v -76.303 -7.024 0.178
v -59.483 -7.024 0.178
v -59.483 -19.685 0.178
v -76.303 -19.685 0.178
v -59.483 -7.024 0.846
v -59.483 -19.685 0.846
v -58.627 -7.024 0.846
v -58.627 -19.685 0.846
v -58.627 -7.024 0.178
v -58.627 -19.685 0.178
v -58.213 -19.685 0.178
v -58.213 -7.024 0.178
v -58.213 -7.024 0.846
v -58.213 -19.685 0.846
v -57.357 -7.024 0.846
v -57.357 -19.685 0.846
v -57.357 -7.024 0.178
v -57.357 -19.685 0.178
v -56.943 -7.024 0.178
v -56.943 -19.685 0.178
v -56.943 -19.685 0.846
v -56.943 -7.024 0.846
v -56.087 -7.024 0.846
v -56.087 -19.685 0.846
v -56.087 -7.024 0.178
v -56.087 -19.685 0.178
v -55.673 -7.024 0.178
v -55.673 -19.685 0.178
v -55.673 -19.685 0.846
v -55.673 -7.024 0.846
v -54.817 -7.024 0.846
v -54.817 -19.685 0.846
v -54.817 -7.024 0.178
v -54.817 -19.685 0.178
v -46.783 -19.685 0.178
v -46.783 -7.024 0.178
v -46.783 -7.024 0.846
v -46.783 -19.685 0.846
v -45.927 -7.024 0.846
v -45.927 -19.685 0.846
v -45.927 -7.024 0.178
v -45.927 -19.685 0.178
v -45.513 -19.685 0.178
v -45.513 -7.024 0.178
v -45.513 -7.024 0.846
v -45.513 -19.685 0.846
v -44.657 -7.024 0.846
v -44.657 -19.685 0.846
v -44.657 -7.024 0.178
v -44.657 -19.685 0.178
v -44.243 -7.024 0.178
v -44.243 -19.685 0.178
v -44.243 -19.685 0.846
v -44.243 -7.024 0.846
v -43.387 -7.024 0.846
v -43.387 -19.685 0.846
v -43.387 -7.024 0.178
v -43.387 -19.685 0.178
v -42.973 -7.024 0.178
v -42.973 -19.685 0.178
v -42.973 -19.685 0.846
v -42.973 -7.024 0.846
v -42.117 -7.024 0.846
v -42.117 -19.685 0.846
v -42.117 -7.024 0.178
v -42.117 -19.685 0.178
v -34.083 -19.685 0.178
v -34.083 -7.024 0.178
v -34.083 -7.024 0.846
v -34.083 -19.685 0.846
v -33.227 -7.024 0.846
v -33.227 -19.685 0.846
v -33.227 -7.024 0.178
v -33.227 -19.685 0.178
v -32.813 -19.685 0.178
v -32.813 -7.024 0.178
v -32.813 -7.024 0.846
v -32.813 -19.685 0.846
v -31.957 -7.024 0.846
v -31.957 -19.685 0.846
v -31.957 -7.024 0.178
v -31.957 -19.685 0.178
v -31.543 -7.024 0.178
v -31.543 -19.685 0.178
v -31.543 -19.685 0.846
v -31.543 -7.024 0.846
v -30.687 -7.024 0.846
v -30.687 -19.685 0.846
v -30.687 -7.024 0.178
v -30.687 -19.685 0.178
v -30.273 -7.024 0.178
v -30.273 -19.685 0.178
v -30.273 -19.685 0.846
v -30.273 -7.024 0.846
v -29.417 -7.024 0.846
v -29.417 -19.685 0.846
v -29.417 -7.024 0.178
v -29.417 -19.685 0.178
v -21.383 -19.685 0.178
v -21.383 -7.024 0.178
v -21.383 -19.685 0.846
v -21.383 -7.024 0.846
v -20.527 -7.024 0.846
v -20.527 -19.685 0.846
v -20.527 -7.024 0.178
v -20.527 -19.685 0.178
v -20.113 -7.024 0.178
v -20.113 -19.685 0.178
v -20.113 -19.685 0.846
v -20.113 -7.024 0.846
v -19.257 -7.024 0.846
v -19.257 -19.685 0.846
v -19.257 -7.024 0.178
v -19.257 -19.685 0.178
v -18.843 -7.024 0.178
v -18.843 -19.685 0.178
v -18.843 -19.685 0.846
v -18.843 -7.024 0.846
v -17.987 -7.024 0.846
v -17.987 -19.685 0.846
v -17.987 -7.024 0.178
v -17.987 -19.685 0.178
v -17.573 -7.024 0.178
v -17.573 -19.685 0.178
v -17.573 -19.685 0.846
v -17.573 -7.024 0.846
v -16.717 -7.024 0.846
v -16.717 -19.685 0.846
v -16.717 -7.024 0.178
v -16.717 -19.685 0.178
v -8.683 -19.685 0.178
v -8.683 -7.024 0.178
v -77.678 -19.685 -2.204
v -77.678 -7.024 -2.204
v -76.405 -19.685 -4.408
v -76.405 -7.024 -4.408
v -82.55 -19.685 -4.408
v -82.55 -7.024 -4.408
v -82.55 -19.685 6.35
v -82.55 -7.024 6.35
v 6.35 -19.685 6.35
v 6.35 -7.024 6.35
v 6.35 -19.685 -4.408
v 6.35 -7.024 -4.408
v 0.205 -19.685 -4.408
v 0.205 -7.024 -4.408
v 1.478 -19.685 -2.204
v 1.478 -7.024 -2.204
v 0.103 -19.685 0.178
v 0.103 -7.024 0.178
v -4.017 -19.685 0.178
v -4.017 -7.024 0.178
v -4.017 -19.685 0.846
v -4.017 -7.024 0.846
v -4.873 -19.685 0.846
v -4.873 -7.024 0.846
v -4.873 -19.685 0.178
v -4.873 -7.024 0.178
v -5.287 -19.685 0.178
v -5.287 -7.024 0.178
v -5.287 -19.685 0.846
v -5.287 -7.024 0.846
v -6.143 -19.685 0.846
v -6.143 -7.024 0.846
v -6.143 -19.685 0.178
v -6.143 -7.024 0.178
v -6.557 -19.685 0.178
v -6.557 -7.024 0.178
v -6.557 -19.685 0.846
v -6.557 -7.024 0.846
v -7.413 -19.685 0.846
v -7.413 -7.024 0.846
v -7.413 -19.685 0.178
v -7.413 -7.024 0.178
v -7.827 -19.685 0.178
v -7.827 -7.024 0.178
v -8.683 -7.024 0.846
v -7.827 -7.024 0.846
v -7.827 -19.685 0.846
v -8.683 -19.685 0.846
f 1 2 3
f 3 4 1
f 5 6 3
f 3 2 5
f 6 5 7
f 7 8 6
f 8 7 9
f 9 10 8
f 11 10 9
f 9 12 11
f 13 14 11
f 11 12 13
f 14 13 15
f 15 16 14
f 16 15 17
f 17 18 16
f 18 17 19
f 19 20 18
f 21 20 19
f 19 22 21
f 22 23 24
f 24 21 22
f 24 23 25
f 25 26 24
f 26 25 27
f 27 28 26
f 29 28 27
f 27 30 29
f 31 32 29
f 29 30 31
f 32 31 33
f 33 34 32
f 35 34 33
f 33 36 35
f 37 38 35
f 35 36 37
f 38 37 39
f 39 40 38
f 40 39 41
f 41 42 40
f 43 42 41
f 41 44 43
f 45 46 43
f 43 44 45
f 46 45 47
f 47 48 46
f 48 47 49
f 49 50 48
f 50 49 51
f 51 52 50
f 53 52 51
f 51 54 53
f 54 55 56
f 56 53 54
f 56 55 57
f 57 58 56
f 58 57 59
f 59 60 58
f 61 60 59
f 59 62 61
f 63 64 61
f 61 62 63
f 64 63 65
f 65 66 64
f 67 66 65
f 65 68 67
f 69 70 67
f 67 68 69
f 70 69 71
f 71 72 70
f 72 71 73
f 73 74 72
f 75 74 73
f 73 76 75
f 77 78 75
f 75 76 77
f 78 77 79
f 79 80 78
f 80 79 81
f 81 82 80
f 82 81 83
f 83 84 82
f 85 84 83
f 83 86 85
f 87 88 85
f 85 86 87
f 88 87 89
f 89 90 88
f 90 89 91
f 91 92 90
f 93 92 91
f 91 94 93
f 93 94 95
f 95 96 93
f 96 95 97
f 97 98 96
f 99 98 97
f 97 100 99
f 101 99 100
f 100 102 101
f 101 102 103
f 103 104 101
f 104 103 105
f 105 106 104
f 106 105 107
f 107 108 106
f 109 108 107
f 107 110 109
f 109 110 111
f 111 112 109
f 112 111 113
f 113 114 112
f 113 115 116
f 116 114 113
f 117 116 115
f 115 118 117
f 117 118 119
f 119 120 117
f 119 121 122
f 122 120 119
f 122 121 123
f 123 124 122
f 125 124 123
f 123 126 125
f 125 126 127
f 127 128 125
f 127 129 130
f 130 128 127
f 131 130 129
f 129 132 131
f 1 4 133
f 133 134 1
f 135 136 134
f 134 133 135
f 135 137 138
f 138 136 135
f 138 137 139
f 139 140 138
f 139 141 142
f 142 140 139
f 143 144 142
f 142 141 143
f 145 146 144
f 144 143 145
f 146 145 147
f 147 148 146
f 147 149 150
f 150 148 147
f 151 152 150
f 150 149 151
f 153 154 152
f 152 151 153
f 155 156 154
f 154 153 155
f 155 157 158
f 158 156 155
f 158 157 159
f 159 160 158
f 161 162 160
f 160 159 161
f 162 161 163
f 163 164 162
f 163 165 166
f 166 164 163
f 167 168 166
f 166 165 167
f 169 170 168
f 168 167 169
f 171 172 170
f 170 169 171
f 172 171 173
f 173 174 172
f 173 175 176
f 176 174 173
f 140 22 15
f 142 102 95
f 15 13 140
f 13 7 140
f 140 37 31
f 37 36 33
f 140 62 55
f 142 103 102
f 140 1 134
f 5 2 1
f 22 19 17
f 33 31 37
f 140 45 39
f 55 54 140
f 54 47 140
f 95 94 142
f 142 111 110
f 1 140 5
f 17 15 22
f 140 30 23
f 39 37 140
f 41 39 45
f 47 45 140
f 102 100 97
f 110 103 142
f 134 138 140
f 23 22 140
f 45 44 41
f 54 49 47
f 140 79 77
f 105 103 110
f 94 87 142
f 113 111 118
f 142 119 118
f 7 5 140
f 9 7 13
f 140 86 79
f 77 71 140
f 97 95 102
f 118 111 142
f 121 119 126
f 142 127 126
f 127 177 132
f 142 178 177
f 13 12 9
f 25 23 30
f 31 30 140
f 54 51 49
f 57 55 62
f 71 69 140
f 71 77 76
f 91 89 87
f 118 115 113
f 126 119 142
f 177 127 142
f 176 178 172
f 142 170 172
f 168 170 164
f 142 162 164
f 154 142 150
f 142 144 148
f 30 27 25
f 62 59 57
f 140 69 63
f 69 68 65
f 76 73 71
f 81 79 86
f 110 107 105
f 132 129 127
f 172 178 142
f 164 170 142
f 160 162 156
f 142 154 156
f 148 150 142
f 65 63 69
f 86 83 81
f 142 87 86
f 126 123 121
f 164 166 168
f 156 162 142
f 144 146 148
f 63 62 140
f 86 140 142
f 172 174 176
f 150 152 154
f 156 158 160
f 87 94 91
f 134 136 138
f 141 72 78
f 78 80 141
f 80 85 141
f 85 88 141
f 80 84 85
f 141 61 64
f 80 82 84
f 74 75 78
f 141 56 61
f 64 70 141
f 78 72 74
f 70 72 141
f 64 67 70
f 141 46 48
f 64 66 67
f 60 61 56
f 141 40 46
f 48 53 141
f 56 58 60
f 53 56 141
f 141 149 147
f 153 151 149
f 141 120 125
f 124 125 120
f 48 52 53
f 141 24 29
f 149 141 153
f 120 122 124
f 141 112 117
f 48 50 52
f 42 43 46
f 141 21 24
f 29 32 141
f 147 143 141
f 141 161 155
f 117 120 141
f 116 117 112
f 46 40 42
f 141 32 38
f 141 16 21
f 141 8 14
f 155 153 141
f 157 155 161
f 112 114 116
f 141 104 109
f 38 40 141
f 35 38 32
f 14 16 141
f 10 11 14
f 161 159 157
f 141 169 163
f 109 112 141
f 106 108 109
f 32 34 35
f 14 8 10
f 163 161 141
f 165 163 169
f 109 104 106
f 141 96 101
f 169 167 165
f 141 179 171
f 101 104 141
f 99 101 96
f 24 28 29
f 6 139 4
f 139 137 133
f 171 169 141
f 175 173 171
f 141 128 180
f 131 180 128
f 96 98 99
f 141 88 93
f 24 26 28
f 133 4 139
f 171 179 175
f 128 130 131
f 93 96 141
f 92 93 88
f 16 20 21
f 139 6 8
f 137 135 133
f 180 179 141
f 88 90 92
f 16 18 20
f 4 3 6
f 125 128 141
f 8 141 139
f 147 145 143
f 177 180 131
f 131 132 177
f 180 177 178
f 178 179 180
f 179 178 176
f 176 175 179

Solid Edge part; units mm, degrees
sketch "Sketch1" plane through (0, 0, 0) normal (0, 0, 1) x (1, 0, 0)
  line L0 (6.35, -7.0244) -> (6.35, -19.685)
  line L1 (6.35, -19.685) -> (-82.55, -19.685)
  line L2 (-82.55, -19.685) -> (-82.55, -7.0244)
  line L3 (-82.55, -7.0244) -> (6.35, -7.0244)
extrude "Protrusion1" add sketch "Sketch1" against normal up to vertex (4.4079 mm away)
sketch "Sketch2" plane through (0, 0, 0) normal (0, 0, 1) x (1, 0, 0)
  line L0 (6.35, -19.685) -> (-82.55, -19.685)
  line L1 (-82.55, -19.685) -> (-82.55, -7.0244)
  line L2 (-82.55, -7.0244) -> (6.35, -7.0244)
  line L3 (6.35, -7.0244) -> (6.35, -19.685)
extrude "Protrusion2" add sketch "Sketch2" along normal blind 6.35
sketch "Sketch3" plane through (-38.1, -19.685, 0.971) normal (0, -1, 0) x (1, 0, 0)
  line L0 (38.2778, -11.6851) -> (38.2778, -5.4266)
  line L1 (38.2778, -5.4266) -> (39.5778, -3.175)
  line L2 (39.5778, -3.175) -> (38.2027, -0.7932)
  line L3 (38.2027, -0.7932) -> (34.0828, -0.7932)
  line L4 (34.0828, -0.7932) -> (-38.2027, -0.7932)
  line L5 (-38.2027, -0.7932) -> (-39.5778, -3.175)
  line L6 (-39.5778, -3.175) -> (-38.2778, -5.4266)
  line L7 (-38.2778, -5.4266) -> (-38.2778, -11.6851)
  line L8 (-38.2778, -11.6851) -> (38.2778, -11.6851)
extrude "Cutout1" cut sketch "Sketch3" against normal through all
sketch "Sketch4" plane through (-38.1, -19.685, 0.971) normal (0, -1, 0) x (1, 0, 0)
  line L0 (34.0828, -1.6488) -> (34.0828, -0.7932)
  line L1 (34.0828, -0.7932) -> (34.0828, -0.1248)
  line L2 (33.2272, -0.1248) -> (34.0828, -0.1248)
  line L3 (33.2272, -0.7932) -> (33.2272, -0.1248)
  line L4 (33.2272, -0.7932) -> (33.2272, -1.6488)
  line L5 (33.2272, -1.6488) -> (34.0828, -1.6488)
  line L6 (32.8128, -1.6488) -> (32.8128, -0.7932)
  line L7 (32.8128, -0.7932) -> (32.8128, -0.1248)
  line L8 (31.9572, -0.1248) -> (32.8128, -0.1248)
  line L9 (31.9572, -0.7932) -> (31.9572, -0.1248)
  line L10 (31.9572, -0.7932) -> (31.9572, -1.6488)
  line L11 (31.9572, -1.6488) -> (32.8128, -1.6488)
  line L12 (31.5428, -1.6488) -> (30.6872, -1.6488)
  line L13 (30.6872, -1.6488) -> (30.6872, -0.7932)
  line L14 (30.6872, -0.7932) -> (30.6872, -0.1248)
  line L15 (30.6872, -0.1248) -> (31.5428, -0.1248)
  line L16 (31.5428, -0.7932) -> (31.5428, -0.1248)
  line L17 (31.5428, -0.7932) -> (31.5428, -1.6488)
  line L18 (30.2728, -1.6488) -> (29.4172, -1.6488)
  line L19 (29.4172, -1.6488) -> (29.4172, -0.7932)
  line L20 (29.4172, -0.1248) -> (29.4172, -0.7932)
  line L21 (29.4172, -0.1248) -> (30.2728, -0.1248)
  line L22 (30.2728, -0.7932) -> (30.2728, -0.1248)
  line L23 (30.2728, -0.7932) -> (30.2728, -1.6488)
  dimension "D1" = 0.1778
  dimension "D2" = 0.1778
  dimension "D3" = 0.1778
  dimension "D4" = 0.1778
  dimension "D5" = 1.524
extrude "Cutout2" cut sketch "Sketch4" against normal through all
pattern_linear "Pattern1" count 5 spacing 12.7 along (-1, 0, 0) of "Cutout2"
